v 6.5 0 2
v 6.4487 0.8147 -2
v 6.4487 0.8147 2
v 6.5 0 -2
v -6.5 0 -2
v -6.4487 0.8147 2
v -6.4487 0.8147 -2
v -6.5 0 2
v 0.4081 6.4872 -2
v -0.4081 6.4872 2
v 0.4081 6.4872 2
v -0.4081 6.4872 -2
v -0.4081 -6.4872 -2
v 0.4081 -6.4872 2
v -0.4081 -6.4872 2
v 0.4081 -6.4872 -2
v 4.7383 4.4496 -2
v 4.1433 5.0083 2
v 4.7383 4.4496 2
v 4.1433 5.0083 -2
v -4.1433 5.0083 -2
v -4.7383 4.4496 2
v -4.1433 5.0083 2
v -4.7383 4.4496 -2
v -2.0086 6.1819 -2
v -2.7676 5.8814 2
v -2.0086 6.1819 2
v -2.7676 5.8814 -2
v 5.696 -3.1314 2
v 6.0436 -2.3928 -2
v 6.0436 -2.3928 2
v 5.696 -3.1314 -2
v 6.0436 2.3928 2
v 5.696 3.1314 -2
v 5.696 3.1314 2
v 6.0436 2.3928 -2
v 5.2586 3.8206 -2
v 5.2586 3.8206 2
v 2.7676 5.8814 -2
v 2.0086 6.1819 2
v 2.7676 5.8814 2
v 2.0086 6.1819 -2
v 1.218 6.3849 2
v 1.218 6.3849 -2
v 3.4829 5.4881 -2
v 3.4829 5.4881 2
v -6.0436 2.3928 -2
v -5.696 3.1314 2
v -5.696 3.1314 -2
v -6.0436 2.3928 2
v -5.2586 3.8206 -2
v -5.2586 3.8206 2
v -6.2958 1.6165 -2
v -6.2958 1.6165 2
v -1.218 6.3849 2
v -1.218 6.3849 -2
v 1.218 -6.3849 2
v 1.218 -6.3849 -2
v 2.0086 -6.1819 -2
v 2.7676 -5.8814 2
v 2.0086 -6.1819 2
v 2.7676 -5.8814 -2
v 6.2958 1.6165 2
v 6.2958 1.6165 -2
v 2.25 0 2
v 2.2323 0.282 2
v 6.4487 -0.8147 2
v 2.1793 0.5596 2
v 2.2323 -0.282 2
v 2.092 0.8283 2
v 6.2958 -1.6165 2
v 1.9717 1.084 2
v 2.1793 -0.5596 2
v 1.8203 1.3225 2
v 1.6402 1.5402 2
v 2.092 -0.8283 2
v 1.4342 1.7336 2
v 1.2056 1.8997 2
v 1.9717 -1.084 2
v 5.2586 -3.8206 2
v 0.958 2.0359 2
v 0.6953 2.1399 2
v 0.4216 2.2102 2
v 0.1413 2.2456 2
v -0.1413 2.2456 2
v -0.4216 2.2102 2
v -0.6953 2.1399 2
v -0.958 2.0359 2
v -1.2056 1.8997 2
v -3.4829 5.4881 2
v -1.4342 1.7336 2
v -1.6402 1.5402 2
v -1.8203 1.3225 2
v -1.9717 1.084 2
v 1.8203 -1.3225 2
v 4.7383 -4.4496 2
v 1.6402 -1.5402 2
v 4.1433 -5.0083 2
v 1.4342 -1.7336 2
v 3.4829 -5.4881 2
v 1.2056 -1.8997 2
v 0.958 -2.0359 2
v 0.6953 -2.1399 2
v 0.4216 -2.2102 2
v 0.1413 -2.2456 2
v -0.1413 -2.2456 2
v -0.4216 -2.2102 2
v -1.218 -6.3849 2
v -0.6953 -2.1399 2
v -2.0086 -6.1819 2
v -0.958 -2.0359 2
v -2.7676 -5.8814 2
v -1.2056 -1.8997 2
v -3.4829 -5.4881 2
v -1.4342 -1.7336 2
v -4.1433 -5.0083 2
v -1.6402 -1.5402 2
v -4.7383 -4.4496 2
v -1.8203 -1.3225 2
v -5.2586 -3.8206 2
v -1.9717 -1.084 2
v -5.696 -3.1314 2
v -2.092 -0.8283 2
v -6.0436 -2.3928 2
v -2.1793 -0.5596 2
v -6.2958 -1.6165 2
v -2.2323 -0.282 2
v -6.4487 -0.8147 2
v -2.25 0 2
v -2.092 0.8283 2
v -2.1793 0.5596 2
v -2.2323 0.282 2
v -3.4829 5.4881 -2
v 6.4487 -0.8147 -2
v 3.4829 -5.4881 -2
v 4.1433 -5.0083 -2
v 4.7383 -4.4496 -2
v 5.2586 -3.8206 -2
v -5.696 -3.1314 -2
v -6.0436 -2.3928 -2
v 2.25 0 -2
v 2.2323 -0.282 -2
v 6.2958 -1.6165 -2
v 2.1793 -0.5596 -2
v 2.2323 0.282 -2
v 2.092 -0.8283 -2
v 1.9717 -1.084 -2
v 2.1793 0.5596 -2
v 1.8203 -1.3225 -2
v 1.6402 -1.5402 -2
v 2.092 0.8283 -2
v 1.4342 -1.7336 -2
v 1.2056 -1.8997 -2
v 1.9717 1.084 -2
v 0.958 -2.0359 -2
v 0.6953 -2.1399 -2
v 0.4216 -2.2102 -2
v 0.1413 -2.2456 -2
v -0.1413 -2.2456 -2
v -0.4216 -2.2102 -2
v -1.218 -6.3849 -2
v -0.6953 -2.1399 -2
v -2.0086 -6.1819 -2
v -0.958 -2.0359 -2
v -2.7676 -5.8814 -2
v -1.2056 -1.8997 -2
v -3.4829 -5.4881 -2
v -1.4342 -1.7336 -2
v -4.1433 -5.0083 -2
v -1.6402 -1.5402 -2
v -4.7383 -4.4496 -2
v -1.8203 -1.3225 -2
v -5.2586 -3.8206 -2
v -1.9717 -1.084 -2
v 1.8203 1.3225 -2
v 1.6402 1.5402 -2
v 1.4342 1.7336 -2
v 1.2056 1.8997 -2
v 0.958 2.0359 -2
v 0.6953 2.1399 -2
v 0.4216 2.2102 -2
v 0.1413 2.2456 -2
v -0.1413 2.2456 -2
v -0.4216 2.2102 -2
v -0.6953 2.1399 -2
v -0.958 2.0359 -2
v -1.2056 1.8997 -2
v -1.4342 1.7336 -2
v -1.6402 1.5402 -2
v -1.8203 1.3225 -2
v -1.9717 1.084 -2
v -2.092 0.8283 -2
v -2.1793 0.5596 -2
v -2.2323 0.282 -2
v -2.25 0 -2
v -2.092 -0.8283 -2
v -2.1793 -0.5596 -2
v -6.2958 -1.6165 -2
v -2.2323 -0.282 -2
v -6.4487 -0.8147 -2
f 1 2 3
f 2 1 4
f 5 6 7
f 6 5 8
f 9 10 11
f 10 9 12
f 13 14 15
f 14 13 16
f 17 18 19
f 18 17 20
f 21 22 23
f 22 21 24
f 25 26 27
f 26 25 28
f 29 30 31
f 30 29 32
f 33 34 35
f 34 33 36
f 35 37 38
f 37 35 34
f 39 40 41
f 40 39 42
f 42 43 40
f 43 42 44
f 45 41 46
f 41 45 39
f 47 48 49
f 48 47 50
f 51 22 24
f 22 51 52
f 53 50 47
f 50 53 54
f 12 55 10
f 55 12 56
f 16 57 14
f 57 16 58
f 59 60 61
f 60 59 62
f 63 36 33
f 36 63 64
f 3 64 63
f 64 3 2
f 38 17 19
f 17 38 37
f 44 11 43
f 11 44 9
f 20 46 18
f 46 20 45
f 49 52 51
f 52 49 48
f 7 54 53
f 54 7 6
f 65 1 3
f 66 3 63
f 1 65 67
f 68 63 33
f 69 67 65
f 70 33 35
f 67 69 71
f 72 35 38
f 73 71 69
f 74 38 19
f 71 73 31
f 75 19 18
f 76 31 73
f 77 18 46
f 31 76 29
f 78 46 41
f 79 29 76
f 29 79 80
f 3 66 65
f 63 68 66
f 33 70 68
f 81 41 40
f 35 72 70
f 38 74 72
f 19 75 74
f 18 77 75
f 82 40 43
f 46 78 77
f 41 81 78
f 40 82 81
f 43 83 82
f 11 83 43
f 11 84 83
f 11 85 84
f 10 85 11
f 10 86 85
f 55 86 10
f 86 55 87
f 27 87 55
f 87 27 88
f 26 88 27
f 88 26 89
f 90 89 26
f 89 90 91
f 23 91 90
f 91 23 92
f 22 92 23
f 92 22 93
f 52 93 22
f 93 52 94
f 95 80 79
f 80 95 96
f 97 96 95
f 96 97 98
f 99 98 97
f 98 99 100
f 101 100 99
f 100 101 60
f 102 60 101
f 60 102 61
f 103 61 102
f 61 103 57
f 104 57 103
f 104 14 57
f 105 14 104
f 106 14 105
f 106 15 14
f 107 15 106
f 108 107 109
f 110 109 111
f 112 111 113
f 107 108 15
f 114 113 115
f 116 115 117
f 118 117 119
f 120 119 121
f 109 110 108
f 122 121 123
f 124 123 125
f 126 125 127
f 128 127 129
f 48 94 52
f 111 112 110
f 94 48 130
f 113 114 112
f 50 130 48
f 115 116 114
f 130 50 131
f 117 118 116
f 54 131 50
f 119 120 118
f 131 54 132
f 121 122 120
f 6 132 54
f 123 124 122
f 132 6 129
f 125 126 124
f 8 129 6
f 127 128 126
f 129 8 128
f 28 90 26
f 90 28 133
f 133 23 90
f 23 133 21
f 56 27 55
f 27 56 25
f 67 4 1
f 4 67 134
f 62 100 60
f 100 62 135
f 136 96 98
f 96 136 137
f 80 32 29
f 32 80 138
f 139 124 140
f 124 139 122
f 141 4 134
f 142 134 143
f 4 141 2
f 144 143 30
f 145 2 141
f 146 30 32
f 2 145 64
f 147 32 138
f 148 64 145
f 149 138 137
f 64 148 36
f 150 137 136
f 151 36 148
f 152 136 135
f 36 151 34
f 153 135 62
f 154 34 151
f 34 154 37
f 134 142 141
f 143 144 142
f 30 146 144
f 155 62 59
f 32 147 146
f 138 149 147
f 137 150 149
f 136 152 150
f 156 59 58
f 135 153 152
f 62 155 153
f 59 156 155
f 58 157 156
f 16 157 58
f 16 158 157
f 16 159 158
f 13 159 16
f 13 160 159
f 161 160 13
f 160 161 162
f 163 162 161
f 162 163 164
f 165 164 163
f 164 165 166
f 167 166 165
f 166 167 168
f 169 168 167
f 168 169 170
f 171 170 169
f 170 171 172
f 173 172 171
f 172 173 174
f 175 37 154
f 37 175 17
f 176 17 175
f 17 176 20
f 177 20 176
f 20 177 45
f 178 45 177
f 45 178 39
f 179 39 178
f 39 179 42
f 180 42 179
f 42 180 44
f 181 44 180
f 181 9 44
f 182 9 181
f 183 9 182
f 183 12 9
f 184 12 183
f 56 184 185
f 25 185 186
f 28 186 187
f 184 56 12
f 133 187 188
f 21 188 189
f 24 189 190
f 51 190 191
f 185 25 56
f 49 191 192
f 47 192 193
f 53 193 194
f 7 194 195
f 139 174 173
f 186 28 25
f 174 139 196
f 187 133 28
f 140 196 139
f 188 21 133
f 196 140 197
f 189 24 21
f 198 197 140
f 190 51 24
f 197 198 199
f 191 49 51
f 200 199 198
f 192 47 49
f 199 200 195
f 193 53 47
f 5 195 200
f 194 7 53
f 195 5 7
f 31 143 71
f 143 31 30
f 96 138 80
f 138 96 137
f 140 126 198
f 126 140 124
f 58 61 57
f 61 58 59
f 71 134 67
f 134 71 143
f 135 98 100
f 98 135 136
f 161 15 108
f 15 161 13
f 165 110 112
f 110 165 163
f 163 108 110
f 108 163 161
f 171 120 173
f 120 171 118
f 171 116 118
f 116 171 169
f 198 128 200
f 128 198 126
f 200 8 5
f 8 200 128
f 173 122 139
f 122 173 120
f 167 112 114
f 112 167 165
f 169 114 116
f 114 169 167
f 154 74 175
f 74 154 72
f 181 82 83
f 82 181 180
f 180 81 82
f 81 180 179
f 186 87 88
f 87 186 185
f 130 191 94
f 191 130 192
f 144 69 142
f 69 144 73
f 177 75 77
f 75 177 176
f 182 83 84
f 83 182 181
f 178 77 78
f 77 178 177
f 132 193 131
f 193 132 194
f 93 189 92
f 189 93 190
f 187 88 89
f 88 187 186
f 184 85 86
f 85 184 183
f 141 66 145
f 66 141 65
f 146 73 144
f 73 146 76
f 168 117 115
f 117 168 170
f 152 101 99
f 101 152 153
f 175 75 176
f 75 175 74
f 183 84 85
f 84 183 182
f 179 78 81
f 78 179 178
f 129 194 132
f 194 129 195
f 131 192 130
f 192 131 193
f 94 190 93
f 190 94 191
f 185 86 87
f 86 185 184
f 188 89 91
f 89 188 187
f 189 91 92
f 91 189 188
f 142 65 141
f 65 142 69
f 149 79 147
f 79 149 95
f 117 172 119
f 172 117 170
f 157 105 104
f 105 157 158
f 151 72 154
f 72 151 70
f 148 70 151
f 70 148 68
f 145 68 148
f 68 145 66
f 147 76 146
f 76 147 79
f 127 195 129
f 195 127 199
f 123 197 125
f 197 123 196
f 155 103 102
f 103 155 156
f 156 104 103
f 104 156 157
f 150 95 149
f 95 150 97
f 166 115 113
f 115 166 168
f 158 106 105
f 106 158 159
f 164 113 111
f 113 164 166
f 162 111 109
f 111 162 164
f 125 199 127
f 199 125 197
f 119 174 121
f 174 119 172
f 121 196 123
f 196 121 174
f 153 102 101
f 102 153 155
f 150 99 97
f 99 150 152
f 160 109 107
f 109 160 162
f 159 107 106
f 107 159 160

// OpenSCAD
$fn = 50;


difference() {
	union() {
		translate(v = [0, 0, -2.0000000000]) {
			cylinder(h = 4, r = 6.5000000000);
		}
	}
	union() {
		translate(v = [0, 0, -100.0000000000]) {
			cylinder(h = 200, r = 2.2500000000);
		}
	}
}
